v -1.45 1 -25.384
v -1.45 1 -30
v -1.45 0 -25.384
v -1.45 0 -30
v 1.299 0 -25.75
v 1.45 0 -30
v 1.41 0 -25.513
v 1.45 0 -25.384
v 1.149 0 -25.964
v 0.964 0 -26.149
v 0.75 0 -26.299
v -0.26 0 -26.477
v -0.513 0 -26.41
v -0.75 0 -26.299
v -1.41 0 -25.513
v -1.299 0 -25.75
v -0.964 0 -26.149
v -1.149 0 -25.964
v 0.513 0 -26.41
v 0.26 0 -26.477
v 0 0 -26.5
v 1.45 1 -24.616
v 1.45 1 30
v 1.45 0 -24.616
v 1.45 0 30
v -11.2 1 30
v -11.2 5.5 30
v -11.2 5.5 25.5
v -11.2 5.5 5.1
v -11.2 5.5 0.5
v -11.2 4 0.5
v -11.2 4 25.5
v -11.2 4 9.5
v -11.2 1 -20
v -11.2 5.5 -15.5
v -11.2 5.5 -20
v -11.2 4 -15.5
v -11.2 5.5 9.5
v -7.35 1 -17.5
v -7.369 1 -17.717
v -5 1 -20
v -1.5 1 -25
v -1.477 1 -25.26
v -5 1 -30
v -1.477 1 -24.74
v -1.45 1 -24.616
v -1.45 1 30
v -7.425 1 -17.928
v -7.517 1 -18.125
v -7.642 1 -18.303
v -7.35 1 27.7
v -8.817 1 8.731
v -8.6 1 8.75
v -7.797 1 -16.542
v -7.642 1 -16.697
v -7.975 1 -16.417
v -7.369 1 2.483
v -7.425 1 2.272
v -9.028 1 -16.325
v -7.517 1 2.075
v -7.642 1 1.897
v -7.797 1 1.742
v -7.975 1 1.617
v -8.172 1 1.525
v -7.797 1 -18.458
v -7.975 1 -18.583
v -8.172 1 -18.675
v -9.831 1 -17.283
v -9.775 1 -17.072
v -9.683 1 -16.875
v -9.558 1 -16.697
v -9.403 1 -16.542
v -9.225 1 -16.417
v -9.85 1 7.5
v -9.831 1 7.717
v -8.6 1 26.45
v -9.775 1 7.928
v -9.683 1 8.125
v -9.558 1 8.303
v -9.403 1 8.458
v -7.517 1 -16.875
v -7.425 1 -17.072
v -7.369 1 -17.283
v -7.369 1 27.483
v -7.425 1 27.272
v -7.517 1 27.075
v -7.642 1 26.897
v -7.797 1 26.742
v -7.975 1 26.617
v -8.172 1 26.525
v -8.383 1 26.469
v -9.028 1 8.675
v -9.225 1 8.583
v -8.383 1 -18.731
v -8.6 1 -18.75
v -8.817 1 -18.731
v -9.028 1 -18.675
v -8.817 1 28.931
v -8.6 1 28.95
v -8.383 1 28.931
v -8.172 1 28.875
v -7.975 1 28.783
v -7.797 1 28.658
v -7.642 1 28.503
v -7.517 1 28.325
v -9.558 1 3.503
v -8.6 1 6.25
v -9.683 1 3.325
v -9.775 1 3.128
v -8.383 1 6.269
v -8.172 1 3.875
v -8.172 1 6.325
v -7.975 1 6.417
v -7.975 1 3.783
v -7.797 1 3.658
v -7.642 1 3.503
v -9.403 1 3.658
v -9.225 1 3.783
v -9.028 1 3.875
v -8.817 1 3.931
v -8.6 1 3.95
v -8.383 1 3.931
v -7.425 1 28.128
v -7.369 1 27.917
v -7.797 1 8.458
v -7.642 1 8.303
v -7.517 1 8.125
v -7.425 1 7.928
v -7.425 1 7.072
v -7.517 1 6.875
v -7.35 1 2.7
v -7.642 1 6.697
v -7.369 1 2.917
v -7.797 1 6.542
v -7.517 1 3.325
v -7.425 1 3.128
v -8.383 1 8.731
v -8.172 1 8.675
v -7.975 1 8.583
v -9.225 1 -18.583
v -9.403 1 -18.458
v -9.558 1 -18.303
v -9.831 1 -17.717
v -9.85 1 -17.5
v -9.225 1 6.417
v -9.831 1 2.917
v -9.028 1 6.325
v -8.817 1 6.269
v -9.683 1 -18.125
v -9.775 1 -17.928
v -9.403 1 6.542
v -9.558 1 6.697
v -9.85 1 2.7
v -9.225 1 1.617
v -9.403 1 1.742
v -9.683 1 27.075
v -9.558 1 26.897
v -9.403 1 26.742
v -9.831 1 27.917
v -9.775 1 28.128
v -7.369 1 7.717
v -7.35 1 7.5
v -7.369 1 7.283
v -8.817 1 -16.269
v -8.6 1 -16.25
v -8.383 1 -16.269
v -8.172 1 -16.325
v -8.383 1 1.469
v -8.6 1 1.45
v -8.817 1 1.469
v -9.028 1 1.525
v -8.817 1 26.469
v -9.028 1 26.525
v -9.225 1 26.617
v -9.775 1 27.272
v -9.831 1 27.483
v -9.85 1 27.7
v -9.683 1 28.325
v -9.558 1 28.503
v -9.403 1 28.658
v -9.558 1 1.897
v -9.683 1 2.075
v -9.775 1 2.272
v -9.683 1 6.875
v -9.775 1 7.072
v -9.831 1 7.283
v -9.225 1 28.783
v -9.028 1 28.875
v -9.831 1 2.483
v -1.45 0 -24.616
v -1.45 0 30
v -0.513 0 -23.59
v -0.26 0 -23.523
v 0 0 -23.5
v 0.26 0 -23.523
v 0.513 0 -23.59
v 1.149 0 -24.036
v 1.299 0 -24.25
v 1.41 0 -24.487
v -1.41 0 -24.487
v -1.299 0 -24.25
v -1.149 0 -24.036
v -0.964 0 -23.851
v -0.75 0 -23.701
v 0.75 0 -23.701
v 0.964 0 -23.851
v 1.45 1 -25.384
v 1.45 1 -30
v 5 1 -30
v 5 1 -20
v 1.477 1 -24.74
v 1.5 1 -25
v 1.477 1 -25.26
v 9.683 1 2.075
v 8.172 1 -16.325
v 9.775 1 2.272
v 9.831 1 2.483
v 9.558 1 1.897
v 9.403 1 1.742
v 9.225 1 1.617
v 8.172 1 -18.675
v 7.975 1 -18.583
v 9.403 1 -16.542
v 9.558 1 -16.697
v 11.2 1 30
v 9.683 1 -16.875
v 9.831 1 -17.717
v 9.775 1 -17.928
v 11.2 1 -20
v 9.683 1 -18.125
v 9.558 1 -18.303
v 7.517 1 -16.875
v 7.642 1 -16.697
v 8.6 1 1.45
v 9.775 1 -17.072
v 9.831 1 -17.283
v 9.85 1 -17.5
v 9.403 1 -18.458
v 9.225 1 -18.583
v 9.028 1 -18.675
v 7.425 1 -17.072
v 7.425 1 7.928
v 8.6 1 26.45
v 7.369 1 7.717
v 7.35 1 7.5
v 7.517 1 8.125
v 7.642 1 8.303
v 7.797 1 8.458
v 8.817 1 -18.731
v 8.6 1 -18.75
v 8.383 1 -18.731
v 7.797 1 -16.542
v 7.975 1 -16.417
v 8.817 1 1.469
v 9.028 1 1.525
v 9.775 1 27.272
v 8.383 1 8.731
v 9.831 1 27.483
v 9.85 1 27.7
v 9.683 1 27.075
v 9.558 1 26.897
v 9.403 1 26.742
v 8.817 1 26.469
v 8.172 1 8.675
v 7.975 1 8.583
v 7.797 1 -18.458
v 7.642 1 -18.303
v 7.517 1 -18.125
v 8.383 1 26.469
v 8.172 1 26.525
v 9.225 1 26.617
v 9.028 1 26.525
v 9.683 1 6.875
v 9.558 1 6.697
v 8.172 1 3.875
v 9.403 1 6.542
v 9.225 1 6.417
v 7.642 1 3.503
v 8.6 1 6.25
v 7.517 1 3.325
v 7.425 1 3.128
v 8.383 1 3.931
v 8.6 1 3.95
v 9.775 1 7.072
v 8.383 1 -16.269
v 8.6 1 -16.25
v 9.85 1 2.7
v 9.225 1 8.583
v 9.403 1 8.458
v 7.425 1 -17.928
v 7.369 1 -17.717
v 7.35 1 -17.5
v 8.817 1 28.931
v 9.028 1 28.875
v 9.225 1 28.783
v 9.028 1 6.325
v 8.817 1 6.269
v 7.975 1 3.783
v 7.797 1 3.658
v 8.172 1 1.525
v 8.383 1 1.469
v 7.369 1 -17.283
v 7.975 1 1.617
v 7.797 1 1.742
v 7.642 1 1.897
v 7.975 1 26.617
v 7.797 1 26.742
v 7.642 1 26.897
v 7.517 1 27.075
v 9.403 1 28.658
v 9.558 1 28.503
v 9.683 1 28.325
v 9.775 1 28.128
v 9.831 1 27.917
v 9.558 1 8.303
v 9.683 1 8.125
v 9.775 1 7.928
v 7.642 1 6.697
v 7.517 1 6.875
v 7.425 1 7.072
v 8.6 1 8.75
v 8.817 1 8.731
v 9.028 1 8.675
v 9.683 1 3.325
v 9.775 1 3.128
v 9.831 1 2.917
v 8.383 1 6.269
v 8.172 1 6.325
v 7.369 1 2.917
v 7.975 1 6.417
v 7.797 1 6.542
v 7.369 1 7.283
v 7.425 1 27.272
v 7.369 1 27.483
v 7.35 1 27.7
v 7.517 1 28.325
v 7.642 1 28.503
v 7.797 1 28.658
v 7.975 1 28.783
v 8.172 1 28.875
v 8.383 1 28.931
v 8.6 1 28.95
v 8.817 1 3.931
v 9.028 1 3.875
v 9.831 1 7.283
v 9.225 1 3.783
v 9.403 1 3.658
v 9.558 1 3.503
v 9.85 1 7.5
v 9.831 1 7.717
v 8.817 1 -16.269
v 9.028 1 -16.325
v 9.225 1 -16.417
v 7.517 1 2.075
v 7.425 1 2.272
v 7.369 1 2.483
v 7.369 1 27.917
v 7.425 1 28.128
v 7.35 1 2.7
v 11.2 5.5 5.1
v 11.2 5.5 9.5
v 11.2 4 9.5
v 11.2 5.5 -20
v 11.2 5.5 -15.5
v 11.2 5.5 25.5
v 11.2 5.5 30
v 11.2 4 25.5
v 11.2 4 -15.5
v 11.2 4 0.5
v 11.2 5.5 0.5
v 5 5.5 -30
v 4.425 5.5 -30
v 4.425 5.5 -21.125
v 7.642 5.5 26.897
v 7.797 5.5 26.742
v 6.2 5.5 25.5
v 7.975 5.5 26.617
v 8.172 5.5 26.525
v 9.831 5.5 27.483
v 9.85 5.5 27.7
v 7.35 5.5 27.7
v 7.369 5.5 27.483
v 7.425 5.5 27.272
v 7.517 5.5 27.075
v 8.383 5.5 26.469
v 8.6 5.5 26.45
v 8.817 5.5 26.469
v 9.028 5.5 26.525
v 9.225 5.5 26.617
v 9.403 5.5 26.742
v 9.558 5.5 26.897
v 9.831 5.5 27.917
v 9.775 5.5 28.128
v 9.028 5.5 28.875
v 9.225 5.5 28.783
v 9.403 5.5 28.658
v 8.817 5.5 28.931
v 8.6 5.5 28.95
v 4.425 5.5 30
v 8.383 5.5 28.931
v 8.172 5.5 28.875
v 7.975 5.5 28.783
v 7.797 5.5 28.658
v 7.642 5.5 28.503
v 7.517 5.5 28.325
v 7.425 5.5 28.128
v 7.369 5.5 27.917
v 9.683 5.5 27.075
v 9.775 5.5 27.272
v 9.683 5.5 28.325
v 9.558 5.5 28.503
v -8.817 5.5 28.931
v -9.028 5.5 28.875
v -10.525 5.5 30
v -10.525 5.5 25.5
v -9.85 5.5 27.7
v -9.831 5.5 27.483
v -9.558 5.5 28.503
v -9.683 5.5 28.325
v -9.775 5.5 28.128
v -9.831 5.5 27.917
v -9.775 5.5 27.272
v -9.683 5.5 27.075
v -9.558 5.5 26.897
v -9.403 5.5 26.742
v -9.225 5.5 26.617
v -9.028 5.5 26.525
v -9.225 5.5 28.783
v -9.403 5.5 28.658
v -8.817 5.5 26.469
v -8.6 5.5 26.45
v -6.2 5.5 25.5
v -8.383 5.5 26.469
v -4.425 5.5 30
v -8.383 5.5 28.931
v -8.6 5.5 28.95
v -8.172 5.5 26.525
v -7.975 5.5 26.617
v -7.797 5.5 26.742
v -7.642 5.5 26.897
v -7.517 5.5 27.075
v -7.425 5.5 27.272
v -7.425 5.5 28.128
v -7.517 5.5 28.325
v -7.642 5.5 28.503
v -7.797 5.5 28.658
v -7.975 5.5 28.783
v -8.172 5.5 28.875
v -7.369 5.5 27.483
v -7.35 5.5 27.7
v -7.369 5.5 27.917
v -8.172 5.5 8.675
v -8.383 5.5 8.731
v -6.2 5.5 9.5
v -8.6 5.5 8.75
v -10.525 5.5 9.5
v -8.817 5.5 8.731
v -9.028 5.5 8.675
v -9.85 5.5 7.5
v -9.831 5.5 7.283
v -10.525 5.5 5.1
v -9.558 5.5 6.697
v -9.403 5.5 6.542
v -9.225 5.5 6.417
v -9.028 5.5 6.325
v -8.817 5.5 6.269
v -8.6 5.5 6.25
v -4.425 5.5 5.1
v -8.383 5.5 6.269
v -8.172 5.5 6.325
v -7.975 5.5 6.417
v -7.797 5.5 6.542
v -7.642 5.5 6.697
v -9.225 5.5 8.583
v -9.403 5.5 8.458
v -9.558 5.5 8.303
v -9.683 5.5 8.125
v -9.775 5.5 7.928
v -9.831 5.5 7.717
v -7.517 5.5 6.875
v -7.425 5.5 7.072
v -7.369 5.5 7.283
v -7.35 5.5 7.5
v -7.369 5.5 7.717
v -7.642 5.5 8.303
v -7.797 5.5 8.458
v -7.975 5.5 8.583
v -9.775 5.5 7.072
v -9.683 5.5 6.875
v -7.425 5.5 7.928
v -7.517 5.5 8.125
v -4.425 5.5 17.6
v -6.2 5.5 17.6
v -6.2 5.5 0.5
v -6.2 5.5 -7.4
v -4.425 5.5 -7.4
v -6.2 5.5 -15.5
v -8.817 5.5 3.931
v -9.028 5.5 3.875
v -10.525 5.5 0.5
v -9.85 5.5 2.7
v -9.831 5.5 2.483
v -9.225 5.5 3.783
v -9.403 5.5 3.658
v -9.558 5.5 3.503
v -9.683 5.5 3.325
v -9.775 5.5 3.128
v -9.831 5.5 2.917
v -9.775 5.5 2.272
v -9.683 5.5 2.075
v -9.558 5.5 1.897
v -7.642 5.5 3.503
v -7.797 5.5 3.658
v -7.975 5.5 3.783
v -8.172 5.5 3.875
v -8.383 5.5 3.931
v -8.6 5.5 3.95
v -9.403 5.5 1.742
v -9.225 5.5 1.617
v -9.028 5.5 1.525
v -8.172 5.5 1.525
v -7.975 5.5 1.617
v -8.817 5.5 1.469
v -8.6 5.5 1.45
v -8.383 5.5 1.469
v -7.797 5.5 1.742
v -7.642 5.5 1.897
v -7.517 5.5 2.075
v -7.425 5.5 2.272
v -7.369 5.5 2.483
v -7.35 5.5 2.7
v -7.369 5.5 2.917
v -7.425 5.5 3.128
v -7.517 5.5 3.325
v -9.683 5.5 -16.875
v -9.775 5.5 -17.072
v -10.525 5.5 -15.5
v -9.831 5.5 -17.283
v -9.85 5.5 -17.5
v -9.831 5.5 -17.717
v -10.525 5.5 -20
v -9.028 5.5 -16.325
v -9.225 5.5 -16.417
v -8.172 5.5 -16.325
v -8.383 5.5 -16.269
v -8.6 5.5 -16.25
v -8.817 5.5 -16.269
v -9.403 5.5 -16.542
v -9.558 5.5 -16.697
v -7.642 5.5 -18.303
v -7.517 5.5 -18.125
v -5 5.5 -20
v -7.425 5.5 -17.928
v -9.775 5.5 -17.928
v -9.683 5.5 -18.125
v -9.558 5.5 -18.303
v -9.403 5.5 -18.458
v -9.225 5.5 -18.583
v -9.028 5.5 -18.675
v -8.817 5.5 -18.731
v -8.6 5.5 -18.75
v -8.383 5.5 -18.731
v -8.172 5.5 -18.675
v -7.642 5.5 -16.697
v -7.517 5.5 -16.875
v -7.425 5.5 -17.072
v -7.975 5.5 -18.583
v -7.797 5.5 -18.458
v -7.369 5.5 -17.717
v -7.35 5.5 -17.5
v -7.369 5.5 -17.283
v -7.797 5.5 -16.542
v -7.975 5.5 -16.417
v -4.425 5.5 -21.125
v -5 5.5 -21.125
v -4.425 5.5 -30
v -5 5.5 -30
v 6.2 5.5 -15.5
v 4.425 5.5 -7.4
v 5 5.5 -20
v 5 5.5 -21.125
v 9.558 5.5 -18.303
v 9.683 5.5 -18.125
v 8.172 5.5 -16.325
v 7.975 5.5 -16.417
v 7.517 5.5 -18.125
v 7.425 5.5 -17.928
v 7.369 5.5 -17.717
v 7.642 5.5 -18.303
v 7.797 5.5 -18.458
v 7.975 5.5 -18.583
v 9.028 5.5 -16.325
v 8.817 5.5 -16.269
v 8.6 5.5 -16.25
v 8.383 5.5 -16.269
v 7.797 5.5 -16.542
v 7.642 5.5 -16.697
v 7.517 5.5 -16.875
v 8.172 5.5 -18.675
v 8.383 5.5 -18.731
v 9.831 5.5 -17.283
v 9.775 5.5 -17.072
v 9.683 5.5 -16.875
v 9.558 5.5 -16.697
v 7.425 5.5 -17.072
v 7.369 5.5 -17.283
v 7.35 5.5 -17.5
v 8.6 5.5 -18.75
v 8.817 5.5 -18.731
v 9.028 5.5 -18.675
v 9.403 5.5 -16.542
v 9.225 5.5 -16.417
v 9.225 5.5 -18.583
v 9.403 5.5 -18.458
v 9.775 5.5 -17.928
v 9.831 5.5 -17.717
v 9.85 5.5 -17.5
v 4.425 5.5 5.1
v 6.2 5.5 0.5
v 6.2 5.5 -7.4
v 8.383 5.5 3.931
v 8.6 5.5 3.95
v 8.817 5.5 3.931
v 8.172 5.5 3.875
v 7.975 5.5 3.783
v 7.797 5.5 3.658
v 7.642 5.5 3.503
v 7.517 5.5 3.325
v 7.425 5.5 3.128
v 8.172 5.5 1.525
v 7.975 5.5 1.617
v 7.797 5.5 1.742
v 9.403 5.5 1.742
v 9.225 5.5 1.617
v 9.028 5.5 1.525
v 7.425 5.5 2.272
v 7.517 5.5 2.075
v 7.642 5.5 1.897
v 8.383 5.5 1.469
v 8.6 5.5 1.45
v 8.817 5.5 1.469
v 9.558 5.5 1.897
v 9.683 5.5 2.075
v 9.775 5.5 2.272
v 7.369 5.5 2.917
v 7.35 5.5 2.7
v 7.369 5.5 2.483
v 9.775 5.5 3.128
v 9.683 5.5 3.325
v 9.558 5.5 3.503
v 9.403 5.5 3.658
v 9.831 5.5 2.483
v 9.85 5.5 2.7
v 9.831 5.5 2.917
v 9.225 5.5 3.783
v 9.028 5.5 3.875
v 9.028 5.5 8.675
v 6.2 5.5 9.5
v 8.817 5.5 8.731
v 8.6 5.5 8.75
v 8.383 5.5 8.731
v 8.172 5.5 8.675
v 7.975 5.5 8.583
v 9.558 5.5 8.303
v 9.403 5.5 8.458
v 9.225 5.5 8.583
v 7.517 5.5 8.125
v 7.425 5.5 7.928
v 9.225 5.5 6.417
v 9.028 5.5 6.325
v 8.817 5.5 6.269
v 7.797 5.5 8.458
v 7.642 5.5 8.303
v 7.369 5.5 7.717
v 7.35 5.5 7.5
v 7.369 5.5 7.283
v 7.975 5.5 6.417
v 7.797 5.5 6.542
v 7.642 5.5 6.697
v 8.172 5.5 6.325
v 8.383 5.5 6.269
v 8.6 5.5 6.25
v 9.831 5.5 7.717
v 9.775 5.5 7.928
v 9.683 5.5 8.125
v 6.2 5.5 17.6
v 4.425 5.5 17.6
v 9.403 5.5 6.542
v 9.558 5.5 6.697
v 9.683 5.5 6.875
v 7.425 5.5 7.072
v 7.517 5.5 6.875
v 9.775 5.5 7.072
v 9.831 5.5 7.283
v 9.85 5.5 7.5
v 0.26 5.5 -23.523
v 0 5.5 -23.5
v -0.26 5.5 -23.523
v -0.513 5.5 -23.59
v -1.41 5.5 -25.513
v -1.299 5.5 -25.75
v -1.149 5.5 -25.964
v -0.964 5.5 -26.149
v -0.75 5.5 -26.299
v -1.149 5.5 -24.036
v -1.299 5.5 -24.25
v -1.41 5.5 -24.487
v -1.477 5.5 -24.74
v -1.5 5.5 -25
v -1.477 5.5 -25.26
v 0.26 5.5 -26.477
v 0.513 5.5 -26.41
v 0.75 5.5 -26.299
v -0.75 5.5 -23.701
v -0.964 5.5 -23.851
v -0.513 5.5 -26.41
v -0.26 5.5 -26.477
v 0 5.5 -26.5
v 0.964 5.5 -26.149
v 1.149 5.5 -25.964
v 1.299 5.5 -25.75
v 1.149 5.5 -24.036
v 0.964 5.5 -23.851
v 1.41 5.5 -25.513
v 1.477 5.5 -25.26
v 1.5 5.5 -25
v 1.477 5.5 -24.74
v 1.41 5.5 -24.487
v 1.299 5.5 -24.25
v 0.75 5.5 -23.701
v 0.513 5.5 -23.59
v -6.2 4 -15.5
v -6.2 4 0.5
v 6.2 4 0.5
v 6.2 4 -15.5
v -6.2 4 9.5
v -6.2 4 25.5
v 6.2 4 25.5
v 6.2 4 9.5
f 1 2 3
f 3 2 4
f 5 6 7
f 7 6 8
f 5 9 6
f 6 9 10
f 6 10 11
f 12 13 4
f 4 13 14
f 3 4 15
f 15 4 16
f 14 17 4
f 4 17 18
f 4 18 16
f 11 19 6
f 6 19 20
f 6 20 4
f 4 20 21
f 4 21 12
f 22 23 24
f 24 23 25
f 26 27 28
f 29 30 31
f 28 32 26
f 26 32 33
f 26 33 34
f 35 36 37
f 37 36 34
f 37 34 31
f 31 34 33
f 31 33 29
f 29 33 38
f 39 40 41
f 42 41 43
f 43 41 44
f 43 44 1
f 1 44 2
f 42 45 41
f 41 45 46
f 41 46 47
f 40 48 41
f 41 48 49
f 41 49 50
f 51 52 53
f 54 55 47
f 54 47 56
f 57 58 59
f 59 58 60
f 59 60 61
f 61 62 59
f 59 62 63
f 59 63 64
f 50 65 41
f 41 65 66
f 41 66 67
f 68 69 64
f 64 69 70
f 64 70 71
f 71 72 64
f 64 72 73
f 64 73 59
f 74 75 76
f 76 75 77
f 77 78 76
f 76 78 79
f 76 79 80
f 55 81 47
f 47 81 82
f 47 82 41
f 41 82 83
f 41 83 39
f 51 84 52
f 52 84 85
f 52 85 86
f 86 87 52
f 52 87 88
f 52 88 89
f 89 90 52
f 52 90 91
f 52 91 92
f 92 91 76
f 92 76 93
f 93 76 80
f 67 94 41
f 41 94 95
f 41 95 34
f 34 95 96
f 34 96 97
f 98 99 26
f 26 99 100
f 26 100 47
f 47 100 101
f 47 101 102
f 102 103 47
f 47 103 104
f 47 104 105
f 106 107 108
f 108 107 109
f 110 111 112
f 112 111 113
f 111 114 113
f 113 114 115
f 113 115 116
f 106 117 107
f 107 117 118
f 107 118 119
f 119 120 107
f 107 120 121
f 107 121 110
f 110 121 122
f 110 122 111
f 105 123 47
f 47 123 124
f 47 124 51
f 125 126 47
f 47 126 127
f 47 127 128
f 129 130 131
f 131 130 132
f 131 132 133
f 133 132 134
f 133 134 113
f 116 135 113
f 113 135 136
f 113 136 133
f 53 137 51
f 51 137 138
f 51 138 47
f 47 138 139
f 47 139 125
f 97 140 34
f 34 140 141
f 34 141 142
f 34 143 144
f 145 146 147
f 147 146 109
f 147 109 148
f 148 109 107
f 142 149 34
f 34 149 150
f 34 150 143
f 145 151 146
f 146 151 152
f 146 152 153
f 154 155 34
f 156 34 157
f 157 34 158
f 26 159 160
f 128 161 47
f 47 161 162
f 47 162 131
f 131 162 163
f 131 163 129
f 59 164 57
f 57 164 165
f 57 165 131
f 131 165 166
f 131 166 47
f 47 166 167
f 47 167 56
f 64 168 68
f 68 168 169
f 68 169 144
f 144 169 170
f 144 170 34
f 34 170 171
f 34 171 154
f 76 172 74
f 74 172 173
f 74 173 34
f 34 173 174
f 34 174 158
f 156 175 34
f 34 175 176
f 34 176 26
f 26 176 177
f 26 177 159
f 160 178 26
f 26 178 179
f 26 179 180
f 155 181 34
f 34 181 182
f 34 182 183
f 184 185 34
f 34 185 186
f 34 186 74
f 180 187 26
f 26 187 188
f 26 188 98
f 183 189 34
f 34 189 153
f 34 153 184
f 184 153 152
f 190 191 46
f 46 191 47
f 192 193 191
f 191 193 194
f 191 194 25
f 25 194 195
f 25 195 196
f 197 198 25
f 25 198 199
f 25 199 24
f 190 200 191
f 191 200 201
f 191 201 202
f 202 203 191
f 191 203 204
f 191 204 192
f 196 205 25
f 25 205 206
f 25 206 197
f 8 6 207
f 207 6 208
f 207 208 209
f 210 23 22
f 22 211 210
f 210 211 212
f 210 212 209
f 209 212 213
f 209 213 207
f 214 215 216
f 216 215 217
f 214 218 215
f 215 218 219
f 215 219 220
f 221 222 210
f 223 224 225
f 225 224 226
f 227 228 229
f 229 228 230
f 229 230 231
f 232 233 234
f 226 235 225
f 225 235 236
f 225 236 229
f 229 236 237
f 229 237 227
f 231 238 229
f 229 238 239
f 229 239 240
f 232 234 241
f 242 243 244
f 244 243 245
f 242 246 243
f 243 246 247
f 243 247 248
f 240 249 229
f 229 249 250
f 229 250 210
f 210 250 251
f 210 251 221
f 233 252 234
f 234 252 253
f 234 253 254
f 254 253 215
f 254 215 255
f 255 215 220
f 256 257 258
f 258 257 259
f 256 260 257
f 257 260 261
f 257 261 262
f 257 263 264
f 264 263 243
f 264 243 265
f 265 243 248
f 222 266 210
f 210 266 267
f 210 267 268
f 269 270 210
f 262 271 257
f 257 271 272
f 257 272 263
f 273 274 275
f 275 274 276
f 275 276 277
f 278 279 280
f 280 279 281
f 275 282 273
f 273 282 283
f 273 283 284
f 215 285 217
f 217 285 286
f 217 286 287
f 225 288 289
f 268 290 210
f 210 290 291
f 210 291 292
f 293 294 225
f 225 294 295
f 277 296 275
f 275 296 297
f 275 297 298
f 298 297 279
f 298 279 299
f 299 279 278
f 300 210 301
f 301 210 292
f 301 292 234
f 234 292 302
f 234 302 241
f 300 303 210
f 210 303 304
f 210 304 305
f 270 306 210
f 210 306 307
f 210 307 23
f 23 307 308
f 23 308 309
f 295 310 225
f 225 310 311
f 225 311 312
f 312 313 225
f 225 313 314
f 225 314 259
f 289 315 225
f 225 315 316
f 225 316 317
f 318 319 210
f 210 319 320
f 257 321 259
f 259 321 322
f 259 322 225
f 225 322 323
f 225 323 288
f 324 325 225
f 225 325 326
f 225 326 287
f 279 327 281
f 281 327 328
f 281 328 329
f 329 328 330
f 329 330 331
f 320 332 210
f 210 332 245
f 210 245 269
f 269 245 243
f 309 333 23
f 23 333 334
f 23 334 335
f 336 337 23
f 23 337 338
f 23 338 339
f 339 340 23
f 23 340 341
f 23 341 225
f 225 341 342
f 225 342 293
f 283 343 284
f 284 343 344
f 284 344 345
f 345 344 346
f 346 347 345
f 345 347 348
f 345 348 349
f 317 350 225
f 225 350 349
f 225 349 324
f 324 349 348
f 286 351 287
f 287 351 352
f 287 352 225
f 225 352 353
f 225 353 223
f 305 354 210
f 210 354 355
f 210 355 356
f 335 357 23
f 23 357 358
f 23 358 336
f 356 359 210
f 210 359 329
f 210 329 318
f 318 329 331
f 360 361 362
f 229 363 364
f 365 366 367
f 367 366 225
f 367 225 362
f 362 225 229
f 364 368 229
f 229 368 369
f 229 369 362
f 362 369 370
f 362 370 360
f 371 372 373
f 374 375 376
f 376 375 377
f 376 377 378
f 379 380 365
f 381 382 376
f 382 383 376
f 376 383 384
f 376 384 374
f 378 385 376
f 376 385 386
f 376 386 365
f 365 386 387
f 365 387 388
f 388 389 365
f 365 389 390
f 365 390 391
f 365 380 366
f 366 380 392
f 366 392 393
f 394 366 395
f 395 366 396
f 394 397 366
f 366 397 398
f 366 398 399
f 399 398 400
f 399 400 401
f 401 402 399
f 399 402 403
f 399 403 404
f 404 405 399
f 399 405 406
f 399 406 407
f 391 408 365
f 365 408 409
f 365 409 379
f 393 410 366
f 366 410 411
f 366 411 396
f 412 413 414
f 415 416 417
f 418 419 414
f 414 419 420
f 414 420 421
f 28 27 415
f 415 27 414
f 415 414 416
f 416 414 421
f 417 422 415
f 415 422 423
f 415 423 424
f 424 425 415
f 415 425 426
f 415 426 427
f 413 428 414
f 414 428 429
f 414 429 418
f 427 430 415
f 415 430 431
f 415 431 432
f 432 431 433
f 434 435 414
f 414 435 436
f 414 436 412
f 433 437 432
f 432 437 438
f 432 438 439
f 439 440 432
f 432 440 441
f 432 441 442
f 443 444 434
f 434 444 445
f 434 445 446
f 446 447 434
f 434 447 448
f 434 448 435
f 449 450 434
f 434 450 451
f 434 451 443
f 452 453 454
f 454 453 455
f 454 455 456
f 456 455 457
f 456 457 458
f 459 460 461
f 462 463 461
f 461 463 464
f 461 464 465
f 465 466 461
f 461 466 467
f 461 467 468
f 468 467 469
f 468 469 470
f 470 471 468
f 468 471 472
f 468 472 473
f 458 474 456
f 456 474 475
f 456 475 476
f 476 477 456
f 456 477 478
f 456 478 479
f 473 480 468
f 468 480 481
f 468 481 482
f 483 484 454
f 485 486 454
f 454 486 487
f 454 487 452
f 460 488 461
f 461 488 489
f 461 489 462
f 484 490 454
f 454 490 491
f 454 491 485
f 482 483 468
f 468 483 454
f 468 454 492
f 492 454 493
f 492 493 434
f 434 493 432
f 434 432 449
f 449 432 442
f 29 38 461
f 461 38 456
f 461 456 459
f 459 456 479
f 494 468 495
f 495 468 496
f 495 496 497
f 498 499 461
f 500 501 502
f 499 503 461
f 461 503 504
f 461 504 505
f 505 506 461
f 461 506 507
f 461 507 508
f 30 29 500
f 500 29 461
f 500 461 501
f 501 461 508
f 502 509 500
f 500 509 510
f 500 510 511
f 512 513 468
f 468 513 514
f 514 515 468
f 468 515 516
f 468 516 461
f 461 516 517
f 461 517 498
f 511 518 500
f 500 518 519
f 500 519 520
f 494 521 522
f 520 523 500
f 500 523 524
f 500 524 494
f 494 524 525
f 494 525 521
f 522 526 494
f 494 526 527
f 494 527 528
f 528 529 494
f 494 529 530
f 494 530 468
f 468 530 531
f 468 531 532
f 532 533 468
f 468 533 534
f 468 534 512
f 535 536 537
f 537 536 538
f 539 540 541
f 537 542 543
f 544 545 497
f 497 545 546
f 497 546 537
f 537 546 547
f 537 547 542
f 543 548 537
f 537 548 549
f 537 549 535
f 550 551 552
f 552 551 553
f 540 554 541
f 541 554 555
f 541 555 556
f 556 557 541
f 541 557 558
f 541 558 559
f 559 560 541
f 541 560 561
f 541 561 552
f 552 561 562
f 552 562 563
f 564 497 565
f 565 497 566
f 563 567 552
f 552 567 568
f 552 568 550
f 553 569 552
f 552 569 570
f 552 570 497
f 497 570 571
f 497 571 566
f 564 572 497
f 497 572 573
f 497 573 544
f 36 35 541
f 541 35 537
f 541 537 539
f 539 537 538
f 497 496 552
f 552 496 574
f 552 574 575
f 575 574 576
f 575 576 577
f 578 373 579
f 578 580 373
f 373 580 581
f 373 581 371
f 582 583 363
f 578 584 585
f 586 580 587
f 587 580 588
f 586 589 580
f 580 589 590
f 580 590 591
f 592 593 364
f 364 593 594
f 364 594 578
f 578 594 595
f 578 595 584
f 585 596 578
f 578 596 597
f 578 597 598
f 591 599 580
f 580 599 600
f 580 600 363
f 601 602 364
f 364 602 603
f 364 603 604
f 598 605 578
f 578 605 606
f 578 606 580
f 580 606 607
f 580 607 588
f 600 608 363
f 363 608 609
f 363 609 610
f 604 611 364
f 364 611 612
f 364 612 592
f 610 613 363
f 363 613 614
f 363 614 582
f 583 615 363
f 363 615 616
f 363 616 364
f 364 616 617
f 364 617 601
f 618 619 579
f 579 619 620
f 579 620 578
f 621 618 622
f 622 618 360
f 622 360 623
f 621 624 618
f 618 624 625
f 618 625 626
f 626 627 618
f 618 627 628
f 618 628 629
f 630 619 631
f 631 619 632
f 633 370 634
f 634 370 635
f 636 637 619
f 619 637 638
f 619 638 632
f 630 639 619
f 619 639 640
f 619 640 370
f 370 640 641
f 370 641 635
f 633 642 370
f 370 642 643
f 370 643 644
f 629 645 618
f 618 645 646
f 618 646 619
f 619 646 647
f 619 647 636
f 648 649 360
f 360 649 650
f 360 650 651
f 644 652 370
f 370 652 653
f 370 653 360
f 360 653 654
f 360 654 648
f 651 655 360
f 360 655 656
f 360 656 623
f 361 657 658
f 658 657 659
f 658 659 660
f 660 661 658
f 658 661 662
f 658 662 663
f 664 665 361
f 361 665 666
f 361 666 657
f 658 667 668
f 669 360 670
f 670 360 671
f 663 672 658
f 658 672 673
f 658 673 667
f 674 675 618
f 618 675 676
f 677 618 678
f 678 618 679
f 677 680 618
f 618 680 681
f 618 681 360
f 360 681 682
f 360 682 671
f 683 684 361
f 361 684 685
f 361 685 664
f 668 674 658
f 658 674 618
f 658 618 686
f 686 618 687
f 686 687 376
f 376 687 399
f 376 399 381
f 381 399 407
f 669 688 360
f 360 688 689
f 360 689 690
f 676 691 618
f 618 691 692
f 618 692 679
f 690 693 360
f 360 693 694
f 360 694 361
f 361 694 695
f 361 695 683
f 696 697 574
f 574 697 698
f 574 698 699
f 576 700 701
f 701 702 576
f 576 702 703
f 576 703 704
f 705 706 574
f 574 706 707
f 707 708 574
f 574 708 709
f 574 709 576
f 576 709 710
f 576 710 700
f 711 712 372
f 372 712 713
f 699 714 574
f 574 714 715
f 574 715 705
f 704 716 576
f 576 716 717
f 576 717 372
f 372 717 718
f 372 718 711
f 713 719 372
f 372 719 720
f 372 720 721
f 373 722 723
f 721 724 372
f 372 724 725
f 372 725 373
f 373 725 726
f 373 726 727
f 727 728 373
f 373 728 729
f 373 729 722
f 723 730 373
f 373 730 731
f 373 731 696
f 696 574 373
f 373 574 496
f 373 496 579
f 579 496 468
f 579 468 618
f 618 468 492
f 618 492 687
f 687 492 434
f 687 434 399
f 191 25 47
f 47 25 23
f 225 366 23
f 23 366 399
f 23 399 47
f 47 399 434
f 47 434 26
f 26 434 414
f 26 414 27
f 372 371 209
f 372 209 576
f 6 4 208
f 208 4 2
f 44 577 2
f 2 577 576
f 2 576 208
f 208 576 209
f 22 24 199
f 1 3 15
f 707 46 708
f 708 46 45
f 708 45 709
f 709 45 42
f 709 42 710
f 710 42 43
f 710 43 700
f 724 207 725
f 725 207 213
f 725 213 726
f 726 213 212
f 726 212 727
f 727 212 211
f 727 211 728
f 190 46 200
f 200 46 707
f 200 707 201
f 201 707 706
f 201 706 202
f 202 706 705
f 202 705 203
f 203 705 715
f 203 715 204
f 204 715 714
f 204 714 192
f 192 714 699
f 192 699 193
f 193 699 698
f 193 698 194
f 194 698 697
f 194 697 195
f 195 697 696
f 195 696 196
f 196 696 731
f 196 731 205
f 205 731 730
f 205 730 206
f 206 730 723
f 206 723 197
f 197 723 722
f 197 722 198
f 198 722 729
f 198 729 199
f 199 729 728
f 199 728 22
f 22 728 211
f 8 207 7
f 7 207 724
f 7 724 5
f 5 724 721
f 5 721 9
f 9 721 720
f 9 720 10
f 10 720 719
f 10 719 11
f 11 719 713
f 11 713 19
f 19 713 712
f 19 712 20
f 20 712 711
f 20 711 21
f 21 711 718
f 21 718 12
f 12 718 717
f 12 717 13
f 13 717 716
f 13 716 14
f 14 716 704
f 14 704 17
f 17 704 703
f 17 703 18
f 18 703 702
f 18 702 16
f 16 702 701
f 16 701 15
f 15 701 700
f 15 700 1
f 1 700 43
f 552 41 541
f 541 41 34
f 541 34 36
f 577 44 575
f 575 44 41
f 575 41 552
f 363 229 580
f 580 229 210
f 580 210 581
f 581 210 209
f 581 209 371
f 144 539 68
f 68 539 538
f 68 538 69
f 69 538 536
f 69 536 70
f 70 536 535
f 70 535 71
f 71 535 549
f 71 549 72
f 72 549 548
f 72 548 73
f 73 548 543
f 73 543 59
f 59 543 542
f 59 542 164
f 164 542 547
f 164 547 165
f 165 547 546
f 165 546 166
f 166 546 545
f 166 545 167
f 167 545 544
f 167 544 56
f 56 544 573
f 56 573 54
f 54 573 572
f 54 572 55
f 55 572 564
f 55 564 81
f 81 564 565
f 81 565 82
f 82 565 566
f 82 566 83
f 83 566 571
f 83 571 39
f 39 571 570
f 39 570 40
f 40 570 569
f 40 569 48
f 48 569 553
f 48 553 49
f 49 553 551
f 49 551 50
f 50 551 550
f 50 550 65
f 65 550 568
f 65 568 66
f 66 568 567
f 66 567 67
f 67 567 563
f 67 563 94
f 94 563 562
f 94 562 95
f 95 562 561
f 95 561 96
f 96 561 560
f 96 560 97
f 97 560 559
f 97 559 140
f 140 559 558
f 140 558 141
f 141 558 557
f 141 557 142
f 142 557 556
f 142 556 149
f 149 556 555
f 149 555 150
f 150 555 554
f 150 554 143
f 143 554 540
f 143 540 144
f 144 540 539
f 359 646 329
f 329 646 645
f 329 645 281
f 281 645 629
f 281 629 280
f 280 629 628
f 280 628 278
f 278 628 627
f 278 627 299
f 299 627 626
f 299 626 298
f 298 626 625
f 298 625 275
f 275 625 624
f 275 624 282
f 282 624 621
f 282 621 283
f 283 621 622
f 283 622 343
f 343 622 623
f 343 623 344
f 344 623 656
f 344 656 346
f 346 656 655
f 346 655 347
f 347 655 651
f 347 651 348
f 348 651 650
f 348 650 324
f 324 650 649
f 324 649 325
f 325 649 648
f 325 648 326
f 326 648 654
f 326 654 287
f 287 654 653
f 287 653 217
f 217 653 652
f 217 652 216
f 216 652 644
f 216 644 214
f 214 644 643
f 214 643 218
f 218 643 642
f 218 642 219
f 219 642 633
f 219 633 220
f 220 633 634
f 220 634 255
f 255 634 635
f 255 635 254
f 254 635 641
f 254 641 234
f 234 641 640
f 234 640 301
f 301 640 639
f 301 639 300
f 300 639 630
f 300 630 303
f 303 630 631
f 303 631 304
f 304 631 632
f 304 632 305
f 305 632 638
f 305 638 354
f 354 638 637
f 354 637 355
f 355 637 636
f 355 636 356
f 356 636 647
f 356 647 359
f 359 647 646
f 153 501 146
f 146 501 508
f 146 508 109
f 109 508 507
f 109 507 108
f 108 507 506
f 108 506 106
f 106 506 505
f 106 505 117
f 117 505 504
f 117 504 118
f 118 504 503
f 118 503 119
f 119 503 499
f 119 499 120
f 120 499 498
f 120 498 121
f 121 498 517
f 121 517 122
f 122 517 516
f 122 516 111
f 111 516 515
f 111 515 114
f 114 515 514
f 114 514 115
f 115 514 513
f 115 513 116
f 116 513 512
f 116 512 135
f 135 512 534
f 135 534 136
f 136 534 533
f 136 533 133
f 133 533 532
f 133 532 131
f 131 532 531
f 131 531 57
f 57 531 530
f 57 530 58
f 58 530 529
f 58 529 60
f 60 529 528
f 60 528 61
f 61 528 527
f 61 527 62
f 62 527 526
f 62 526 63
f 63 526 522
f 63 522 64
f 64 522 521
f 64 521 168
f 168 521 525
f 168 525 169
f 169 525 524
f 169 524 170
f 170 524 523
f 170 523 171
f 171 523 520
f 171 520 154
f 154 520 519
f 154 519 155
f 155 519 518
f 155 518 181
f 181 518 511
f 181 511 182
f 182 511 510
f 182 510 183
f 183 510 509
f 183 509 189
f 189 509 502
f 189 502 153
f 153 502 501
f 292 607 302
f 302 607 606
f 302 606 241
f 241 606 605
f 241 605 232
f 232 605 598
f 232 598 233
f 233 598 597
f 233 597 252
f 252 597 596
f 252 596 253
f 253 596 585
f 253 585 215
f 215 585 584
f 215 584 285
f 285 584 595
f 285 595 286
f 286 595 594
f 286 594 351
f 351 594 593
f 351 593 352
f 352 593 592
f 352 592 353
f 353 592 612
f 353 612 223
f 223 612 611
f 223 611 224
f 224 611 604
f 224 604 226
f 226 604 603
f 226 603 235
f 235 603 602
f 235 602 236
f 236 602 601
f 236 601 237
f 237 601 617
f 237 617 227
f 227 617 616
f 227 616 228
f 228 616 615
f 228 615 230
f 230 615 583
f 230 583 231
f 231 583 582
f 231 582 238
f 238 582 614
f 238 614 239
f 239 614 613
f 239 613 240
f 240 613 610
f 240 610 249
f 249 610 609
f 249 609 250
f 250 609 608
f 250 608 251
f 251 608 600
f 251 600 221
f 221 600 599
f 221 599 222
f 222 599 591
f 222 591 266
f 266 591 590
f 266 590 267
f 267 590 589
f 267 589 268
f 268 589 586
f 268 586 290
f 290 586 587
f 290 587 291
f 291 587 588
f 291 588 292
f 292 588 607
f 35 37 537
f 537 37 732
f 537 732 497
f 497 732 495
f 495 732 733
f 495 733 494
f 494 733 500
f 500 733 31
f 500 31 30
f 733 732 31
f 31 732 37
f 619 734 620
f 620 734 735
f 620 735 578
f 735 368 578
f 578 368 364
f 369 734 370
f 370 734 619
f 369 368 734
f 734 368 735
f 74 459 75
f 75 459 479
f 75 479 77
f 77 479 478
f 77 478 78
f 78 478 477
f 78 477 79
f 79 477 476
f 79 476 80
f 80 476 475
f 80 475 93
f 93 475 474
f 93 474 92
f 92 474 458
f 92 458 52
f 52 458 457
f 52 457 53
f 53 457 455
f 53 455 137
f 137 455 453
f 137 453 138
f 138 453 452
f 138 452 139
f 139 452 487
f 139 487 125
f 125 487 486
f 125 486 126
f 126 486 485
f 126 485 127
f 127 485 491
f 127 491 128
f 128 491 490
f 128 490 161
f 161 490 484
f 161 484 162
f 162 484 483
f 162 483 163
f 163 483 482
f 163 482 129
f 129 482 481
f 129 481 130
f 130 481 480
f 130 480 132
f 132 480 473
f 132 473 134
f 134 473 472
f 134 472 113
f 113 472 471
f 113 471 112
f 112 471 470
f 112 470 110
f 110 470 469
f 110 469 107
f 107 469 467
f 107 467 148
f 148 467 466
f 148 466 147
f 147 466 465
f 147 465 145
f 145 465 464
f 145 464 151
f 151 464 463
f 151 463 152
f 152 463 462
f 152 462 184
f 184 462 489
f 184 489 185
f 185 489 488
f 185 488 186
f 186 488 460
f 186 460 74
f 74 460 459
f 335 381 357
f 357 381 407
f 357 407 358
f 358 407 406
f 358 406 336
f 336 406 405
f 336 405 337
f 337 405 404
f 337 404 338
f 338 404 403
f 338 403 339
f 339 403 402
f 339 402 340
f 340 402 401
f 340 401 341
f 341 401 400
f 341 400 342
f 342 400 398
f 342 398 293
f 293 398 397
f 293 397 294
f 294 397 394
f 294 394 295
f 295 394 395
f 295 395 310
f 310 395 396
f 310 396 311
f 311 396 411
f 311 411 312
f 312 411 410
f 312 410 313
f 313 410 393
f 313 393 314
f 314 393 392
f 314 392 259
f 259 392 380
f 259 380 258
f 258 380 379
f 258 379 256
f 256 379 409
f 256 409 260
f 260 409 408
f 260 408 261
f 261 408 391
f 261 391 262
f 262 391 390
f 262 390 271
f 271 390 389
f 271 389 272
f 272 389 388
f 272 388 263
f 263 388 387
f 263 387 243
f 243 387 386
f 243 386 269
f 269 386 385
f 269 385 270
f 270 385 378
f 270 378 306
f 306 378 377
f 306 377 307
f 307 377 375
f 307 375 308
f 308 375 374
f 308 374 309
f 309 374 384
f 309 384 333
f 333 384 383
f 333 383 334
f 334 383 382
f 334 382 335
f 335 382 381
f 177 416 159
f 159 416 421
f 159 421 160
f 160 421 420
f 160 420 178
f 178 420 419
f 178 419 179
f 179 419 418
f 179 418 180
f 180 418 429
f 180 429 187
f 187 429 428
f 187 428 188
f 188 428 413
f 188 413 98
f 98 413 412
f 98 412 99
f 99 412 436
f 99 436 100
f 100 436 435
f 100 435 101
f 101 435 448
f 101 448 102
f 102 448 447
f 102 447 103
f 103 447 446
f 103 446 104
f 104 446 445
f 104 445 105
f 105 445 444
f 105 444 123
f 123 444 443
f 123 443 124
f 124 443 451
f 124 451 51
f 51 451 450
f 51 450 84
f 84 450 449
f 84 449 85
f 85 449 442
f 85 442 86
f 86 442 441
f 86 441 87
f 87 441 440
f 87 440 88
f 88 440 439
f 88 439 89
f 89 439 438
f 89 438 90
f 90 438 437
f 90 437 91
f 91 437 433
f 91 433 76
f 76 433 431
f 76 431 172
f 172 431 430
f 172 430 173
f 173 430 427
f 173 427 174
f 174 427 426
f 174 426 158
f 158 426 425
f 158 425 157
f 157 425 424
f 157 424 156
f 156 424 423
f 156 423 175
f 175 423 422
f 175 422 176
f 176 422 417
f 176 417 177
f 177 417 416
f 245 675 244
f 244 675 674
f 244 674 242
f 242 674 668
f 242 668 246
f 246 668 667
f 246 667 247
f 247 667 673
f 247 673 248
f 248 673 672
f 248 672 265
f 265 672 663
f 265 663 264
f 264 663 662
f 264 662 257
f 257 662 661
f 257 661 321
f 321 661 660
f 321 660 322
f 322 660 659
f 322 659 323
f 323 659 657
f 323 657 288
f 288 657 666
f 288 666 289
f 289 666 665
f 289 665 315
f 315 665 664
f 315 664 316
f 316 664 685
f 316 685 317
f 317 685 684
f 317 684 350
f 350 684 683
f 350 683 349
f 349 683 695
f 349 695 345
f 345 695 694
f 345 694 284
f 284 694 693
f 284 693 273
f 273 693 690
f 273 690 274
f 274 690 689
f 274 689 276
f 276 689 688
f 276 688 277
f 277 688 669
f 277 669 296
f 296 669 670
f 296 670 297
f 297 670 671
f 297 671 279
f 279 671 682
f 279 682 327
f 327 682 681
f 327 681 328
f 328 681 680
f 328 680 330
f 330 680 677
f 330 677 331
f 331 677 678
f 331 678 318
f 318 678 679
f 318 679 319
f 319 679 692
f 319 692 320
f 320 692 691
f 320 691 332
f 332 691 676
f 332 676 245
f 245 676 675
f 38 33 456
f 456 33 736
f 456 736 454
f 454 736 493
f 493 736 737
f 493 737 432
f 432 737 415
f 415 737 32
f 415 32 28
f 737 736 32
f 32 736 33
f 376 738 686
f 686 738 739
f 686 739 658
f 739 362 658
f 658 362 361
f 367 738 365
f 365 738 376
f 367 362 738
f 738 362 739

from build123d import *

# Parameters (mm, degrees)
BOSS_EXTRUDE1_DEPTH = 30
SKETCH3_R           = 1.5
SKETCH3_W           = 6.2
SKETCH3_H           = 10
MAKERBEAMFIX_DEPTH  = 6.5
SKETCH4_R           = 1.25
FIXHOLES_DEPTH      = 6.5
SKETCH5_W           = 5
SKETCH5_H           = 16
PINFIXHOLES_DEPTH   = 1.5
LPATTERN1_COUNT     = 2
LPATTERN1_PITCH     = 25


with BuildPart() as part:
    # Sketch1 → Boss-Extrude1 (new body, symmetric)
    with BuildSketch(Plane.XY):
        Polygon((-11.2, 1), (-1.45, 1), (-1.45, 0), (1.45, 0), (1.45, 1), (11.2, 1), (11.2, 5.5), (-11.2, 5.5), align=None)
    extrude(amount=BOSS_EXTRUDE1_DEPTH, both=True)

    # Sketch3 → MakerBeamFix (cut, through all)
    with BuildSketch(Plane(origin=(0, 5.5, 0), x_dir=(1, 0, 0), z_dir=(0, 1, 0))):
        with Locations((0, 25)):
            Circle(SKETCH3_R)
        with Locations((-8.1, 25)):
            Rectangle(SKETCH3_W, SKETCH3_H)
        with Locations((8.1, 25)):
            Rectangle(SKETCH3_W, SKETCH3_H)
    extrude(amount=-MAKERBEAMFIX_DEPTH, mode=Mode.SUBTRACT)

    # Sketch4 → FixHoles (cut, through all)
    with BuildSketch(Plane(origin=(0, 5.5, 0), x_dir=(1, 0, 0), z_dir=(0, 1, 0))):
        with Locations((-8.6, 17.5)):
            Circle(SKETCH4_R)
        with Locations((8.6, 17.5)):
            Circle(SKETCH4_R)
        with Locations((-8.6, -2.7)):
            Circle(SKETCH4_R)
        with Locations((8.6, -2.7)):
            Circle(SKETCH4_R)
    fixholes = extrude(amount=-FIXHOLES_DEPTH, mode=Mode.SUBTRACT)

    # Sketch5 → PinFixHoles (cut)
    with BuildSketch(Plane(origin=(0, 5.5, 0), x_dir=(1, 0, 0), z_dir=(0, 1, 0))):
        with Locations((-8.7, 7.5)):
            Rectangle(SKETCH5_W, SKETCH5_H)
        with Locations((8.7, 7.5)):
            Rectangle(SKETCH5_W, SKETCH5_H)
    pinfixholes = extrude(amount=-PINFIXHOLES_DEPTH, mode=Mode.SUBTRACT)

    # LPattern1: FixHoles, PinFixHoles ×2
    with Locations(*[(0, 0, i * LPATTERN1_PITCH) for i in range(1, LPATTERN1_COUNT)]):
        add(fixholes, mode=Mode.SUBTRACT)
        add(pinfixholes, mode=Mode.SUBTRACT)


solid = part.part
